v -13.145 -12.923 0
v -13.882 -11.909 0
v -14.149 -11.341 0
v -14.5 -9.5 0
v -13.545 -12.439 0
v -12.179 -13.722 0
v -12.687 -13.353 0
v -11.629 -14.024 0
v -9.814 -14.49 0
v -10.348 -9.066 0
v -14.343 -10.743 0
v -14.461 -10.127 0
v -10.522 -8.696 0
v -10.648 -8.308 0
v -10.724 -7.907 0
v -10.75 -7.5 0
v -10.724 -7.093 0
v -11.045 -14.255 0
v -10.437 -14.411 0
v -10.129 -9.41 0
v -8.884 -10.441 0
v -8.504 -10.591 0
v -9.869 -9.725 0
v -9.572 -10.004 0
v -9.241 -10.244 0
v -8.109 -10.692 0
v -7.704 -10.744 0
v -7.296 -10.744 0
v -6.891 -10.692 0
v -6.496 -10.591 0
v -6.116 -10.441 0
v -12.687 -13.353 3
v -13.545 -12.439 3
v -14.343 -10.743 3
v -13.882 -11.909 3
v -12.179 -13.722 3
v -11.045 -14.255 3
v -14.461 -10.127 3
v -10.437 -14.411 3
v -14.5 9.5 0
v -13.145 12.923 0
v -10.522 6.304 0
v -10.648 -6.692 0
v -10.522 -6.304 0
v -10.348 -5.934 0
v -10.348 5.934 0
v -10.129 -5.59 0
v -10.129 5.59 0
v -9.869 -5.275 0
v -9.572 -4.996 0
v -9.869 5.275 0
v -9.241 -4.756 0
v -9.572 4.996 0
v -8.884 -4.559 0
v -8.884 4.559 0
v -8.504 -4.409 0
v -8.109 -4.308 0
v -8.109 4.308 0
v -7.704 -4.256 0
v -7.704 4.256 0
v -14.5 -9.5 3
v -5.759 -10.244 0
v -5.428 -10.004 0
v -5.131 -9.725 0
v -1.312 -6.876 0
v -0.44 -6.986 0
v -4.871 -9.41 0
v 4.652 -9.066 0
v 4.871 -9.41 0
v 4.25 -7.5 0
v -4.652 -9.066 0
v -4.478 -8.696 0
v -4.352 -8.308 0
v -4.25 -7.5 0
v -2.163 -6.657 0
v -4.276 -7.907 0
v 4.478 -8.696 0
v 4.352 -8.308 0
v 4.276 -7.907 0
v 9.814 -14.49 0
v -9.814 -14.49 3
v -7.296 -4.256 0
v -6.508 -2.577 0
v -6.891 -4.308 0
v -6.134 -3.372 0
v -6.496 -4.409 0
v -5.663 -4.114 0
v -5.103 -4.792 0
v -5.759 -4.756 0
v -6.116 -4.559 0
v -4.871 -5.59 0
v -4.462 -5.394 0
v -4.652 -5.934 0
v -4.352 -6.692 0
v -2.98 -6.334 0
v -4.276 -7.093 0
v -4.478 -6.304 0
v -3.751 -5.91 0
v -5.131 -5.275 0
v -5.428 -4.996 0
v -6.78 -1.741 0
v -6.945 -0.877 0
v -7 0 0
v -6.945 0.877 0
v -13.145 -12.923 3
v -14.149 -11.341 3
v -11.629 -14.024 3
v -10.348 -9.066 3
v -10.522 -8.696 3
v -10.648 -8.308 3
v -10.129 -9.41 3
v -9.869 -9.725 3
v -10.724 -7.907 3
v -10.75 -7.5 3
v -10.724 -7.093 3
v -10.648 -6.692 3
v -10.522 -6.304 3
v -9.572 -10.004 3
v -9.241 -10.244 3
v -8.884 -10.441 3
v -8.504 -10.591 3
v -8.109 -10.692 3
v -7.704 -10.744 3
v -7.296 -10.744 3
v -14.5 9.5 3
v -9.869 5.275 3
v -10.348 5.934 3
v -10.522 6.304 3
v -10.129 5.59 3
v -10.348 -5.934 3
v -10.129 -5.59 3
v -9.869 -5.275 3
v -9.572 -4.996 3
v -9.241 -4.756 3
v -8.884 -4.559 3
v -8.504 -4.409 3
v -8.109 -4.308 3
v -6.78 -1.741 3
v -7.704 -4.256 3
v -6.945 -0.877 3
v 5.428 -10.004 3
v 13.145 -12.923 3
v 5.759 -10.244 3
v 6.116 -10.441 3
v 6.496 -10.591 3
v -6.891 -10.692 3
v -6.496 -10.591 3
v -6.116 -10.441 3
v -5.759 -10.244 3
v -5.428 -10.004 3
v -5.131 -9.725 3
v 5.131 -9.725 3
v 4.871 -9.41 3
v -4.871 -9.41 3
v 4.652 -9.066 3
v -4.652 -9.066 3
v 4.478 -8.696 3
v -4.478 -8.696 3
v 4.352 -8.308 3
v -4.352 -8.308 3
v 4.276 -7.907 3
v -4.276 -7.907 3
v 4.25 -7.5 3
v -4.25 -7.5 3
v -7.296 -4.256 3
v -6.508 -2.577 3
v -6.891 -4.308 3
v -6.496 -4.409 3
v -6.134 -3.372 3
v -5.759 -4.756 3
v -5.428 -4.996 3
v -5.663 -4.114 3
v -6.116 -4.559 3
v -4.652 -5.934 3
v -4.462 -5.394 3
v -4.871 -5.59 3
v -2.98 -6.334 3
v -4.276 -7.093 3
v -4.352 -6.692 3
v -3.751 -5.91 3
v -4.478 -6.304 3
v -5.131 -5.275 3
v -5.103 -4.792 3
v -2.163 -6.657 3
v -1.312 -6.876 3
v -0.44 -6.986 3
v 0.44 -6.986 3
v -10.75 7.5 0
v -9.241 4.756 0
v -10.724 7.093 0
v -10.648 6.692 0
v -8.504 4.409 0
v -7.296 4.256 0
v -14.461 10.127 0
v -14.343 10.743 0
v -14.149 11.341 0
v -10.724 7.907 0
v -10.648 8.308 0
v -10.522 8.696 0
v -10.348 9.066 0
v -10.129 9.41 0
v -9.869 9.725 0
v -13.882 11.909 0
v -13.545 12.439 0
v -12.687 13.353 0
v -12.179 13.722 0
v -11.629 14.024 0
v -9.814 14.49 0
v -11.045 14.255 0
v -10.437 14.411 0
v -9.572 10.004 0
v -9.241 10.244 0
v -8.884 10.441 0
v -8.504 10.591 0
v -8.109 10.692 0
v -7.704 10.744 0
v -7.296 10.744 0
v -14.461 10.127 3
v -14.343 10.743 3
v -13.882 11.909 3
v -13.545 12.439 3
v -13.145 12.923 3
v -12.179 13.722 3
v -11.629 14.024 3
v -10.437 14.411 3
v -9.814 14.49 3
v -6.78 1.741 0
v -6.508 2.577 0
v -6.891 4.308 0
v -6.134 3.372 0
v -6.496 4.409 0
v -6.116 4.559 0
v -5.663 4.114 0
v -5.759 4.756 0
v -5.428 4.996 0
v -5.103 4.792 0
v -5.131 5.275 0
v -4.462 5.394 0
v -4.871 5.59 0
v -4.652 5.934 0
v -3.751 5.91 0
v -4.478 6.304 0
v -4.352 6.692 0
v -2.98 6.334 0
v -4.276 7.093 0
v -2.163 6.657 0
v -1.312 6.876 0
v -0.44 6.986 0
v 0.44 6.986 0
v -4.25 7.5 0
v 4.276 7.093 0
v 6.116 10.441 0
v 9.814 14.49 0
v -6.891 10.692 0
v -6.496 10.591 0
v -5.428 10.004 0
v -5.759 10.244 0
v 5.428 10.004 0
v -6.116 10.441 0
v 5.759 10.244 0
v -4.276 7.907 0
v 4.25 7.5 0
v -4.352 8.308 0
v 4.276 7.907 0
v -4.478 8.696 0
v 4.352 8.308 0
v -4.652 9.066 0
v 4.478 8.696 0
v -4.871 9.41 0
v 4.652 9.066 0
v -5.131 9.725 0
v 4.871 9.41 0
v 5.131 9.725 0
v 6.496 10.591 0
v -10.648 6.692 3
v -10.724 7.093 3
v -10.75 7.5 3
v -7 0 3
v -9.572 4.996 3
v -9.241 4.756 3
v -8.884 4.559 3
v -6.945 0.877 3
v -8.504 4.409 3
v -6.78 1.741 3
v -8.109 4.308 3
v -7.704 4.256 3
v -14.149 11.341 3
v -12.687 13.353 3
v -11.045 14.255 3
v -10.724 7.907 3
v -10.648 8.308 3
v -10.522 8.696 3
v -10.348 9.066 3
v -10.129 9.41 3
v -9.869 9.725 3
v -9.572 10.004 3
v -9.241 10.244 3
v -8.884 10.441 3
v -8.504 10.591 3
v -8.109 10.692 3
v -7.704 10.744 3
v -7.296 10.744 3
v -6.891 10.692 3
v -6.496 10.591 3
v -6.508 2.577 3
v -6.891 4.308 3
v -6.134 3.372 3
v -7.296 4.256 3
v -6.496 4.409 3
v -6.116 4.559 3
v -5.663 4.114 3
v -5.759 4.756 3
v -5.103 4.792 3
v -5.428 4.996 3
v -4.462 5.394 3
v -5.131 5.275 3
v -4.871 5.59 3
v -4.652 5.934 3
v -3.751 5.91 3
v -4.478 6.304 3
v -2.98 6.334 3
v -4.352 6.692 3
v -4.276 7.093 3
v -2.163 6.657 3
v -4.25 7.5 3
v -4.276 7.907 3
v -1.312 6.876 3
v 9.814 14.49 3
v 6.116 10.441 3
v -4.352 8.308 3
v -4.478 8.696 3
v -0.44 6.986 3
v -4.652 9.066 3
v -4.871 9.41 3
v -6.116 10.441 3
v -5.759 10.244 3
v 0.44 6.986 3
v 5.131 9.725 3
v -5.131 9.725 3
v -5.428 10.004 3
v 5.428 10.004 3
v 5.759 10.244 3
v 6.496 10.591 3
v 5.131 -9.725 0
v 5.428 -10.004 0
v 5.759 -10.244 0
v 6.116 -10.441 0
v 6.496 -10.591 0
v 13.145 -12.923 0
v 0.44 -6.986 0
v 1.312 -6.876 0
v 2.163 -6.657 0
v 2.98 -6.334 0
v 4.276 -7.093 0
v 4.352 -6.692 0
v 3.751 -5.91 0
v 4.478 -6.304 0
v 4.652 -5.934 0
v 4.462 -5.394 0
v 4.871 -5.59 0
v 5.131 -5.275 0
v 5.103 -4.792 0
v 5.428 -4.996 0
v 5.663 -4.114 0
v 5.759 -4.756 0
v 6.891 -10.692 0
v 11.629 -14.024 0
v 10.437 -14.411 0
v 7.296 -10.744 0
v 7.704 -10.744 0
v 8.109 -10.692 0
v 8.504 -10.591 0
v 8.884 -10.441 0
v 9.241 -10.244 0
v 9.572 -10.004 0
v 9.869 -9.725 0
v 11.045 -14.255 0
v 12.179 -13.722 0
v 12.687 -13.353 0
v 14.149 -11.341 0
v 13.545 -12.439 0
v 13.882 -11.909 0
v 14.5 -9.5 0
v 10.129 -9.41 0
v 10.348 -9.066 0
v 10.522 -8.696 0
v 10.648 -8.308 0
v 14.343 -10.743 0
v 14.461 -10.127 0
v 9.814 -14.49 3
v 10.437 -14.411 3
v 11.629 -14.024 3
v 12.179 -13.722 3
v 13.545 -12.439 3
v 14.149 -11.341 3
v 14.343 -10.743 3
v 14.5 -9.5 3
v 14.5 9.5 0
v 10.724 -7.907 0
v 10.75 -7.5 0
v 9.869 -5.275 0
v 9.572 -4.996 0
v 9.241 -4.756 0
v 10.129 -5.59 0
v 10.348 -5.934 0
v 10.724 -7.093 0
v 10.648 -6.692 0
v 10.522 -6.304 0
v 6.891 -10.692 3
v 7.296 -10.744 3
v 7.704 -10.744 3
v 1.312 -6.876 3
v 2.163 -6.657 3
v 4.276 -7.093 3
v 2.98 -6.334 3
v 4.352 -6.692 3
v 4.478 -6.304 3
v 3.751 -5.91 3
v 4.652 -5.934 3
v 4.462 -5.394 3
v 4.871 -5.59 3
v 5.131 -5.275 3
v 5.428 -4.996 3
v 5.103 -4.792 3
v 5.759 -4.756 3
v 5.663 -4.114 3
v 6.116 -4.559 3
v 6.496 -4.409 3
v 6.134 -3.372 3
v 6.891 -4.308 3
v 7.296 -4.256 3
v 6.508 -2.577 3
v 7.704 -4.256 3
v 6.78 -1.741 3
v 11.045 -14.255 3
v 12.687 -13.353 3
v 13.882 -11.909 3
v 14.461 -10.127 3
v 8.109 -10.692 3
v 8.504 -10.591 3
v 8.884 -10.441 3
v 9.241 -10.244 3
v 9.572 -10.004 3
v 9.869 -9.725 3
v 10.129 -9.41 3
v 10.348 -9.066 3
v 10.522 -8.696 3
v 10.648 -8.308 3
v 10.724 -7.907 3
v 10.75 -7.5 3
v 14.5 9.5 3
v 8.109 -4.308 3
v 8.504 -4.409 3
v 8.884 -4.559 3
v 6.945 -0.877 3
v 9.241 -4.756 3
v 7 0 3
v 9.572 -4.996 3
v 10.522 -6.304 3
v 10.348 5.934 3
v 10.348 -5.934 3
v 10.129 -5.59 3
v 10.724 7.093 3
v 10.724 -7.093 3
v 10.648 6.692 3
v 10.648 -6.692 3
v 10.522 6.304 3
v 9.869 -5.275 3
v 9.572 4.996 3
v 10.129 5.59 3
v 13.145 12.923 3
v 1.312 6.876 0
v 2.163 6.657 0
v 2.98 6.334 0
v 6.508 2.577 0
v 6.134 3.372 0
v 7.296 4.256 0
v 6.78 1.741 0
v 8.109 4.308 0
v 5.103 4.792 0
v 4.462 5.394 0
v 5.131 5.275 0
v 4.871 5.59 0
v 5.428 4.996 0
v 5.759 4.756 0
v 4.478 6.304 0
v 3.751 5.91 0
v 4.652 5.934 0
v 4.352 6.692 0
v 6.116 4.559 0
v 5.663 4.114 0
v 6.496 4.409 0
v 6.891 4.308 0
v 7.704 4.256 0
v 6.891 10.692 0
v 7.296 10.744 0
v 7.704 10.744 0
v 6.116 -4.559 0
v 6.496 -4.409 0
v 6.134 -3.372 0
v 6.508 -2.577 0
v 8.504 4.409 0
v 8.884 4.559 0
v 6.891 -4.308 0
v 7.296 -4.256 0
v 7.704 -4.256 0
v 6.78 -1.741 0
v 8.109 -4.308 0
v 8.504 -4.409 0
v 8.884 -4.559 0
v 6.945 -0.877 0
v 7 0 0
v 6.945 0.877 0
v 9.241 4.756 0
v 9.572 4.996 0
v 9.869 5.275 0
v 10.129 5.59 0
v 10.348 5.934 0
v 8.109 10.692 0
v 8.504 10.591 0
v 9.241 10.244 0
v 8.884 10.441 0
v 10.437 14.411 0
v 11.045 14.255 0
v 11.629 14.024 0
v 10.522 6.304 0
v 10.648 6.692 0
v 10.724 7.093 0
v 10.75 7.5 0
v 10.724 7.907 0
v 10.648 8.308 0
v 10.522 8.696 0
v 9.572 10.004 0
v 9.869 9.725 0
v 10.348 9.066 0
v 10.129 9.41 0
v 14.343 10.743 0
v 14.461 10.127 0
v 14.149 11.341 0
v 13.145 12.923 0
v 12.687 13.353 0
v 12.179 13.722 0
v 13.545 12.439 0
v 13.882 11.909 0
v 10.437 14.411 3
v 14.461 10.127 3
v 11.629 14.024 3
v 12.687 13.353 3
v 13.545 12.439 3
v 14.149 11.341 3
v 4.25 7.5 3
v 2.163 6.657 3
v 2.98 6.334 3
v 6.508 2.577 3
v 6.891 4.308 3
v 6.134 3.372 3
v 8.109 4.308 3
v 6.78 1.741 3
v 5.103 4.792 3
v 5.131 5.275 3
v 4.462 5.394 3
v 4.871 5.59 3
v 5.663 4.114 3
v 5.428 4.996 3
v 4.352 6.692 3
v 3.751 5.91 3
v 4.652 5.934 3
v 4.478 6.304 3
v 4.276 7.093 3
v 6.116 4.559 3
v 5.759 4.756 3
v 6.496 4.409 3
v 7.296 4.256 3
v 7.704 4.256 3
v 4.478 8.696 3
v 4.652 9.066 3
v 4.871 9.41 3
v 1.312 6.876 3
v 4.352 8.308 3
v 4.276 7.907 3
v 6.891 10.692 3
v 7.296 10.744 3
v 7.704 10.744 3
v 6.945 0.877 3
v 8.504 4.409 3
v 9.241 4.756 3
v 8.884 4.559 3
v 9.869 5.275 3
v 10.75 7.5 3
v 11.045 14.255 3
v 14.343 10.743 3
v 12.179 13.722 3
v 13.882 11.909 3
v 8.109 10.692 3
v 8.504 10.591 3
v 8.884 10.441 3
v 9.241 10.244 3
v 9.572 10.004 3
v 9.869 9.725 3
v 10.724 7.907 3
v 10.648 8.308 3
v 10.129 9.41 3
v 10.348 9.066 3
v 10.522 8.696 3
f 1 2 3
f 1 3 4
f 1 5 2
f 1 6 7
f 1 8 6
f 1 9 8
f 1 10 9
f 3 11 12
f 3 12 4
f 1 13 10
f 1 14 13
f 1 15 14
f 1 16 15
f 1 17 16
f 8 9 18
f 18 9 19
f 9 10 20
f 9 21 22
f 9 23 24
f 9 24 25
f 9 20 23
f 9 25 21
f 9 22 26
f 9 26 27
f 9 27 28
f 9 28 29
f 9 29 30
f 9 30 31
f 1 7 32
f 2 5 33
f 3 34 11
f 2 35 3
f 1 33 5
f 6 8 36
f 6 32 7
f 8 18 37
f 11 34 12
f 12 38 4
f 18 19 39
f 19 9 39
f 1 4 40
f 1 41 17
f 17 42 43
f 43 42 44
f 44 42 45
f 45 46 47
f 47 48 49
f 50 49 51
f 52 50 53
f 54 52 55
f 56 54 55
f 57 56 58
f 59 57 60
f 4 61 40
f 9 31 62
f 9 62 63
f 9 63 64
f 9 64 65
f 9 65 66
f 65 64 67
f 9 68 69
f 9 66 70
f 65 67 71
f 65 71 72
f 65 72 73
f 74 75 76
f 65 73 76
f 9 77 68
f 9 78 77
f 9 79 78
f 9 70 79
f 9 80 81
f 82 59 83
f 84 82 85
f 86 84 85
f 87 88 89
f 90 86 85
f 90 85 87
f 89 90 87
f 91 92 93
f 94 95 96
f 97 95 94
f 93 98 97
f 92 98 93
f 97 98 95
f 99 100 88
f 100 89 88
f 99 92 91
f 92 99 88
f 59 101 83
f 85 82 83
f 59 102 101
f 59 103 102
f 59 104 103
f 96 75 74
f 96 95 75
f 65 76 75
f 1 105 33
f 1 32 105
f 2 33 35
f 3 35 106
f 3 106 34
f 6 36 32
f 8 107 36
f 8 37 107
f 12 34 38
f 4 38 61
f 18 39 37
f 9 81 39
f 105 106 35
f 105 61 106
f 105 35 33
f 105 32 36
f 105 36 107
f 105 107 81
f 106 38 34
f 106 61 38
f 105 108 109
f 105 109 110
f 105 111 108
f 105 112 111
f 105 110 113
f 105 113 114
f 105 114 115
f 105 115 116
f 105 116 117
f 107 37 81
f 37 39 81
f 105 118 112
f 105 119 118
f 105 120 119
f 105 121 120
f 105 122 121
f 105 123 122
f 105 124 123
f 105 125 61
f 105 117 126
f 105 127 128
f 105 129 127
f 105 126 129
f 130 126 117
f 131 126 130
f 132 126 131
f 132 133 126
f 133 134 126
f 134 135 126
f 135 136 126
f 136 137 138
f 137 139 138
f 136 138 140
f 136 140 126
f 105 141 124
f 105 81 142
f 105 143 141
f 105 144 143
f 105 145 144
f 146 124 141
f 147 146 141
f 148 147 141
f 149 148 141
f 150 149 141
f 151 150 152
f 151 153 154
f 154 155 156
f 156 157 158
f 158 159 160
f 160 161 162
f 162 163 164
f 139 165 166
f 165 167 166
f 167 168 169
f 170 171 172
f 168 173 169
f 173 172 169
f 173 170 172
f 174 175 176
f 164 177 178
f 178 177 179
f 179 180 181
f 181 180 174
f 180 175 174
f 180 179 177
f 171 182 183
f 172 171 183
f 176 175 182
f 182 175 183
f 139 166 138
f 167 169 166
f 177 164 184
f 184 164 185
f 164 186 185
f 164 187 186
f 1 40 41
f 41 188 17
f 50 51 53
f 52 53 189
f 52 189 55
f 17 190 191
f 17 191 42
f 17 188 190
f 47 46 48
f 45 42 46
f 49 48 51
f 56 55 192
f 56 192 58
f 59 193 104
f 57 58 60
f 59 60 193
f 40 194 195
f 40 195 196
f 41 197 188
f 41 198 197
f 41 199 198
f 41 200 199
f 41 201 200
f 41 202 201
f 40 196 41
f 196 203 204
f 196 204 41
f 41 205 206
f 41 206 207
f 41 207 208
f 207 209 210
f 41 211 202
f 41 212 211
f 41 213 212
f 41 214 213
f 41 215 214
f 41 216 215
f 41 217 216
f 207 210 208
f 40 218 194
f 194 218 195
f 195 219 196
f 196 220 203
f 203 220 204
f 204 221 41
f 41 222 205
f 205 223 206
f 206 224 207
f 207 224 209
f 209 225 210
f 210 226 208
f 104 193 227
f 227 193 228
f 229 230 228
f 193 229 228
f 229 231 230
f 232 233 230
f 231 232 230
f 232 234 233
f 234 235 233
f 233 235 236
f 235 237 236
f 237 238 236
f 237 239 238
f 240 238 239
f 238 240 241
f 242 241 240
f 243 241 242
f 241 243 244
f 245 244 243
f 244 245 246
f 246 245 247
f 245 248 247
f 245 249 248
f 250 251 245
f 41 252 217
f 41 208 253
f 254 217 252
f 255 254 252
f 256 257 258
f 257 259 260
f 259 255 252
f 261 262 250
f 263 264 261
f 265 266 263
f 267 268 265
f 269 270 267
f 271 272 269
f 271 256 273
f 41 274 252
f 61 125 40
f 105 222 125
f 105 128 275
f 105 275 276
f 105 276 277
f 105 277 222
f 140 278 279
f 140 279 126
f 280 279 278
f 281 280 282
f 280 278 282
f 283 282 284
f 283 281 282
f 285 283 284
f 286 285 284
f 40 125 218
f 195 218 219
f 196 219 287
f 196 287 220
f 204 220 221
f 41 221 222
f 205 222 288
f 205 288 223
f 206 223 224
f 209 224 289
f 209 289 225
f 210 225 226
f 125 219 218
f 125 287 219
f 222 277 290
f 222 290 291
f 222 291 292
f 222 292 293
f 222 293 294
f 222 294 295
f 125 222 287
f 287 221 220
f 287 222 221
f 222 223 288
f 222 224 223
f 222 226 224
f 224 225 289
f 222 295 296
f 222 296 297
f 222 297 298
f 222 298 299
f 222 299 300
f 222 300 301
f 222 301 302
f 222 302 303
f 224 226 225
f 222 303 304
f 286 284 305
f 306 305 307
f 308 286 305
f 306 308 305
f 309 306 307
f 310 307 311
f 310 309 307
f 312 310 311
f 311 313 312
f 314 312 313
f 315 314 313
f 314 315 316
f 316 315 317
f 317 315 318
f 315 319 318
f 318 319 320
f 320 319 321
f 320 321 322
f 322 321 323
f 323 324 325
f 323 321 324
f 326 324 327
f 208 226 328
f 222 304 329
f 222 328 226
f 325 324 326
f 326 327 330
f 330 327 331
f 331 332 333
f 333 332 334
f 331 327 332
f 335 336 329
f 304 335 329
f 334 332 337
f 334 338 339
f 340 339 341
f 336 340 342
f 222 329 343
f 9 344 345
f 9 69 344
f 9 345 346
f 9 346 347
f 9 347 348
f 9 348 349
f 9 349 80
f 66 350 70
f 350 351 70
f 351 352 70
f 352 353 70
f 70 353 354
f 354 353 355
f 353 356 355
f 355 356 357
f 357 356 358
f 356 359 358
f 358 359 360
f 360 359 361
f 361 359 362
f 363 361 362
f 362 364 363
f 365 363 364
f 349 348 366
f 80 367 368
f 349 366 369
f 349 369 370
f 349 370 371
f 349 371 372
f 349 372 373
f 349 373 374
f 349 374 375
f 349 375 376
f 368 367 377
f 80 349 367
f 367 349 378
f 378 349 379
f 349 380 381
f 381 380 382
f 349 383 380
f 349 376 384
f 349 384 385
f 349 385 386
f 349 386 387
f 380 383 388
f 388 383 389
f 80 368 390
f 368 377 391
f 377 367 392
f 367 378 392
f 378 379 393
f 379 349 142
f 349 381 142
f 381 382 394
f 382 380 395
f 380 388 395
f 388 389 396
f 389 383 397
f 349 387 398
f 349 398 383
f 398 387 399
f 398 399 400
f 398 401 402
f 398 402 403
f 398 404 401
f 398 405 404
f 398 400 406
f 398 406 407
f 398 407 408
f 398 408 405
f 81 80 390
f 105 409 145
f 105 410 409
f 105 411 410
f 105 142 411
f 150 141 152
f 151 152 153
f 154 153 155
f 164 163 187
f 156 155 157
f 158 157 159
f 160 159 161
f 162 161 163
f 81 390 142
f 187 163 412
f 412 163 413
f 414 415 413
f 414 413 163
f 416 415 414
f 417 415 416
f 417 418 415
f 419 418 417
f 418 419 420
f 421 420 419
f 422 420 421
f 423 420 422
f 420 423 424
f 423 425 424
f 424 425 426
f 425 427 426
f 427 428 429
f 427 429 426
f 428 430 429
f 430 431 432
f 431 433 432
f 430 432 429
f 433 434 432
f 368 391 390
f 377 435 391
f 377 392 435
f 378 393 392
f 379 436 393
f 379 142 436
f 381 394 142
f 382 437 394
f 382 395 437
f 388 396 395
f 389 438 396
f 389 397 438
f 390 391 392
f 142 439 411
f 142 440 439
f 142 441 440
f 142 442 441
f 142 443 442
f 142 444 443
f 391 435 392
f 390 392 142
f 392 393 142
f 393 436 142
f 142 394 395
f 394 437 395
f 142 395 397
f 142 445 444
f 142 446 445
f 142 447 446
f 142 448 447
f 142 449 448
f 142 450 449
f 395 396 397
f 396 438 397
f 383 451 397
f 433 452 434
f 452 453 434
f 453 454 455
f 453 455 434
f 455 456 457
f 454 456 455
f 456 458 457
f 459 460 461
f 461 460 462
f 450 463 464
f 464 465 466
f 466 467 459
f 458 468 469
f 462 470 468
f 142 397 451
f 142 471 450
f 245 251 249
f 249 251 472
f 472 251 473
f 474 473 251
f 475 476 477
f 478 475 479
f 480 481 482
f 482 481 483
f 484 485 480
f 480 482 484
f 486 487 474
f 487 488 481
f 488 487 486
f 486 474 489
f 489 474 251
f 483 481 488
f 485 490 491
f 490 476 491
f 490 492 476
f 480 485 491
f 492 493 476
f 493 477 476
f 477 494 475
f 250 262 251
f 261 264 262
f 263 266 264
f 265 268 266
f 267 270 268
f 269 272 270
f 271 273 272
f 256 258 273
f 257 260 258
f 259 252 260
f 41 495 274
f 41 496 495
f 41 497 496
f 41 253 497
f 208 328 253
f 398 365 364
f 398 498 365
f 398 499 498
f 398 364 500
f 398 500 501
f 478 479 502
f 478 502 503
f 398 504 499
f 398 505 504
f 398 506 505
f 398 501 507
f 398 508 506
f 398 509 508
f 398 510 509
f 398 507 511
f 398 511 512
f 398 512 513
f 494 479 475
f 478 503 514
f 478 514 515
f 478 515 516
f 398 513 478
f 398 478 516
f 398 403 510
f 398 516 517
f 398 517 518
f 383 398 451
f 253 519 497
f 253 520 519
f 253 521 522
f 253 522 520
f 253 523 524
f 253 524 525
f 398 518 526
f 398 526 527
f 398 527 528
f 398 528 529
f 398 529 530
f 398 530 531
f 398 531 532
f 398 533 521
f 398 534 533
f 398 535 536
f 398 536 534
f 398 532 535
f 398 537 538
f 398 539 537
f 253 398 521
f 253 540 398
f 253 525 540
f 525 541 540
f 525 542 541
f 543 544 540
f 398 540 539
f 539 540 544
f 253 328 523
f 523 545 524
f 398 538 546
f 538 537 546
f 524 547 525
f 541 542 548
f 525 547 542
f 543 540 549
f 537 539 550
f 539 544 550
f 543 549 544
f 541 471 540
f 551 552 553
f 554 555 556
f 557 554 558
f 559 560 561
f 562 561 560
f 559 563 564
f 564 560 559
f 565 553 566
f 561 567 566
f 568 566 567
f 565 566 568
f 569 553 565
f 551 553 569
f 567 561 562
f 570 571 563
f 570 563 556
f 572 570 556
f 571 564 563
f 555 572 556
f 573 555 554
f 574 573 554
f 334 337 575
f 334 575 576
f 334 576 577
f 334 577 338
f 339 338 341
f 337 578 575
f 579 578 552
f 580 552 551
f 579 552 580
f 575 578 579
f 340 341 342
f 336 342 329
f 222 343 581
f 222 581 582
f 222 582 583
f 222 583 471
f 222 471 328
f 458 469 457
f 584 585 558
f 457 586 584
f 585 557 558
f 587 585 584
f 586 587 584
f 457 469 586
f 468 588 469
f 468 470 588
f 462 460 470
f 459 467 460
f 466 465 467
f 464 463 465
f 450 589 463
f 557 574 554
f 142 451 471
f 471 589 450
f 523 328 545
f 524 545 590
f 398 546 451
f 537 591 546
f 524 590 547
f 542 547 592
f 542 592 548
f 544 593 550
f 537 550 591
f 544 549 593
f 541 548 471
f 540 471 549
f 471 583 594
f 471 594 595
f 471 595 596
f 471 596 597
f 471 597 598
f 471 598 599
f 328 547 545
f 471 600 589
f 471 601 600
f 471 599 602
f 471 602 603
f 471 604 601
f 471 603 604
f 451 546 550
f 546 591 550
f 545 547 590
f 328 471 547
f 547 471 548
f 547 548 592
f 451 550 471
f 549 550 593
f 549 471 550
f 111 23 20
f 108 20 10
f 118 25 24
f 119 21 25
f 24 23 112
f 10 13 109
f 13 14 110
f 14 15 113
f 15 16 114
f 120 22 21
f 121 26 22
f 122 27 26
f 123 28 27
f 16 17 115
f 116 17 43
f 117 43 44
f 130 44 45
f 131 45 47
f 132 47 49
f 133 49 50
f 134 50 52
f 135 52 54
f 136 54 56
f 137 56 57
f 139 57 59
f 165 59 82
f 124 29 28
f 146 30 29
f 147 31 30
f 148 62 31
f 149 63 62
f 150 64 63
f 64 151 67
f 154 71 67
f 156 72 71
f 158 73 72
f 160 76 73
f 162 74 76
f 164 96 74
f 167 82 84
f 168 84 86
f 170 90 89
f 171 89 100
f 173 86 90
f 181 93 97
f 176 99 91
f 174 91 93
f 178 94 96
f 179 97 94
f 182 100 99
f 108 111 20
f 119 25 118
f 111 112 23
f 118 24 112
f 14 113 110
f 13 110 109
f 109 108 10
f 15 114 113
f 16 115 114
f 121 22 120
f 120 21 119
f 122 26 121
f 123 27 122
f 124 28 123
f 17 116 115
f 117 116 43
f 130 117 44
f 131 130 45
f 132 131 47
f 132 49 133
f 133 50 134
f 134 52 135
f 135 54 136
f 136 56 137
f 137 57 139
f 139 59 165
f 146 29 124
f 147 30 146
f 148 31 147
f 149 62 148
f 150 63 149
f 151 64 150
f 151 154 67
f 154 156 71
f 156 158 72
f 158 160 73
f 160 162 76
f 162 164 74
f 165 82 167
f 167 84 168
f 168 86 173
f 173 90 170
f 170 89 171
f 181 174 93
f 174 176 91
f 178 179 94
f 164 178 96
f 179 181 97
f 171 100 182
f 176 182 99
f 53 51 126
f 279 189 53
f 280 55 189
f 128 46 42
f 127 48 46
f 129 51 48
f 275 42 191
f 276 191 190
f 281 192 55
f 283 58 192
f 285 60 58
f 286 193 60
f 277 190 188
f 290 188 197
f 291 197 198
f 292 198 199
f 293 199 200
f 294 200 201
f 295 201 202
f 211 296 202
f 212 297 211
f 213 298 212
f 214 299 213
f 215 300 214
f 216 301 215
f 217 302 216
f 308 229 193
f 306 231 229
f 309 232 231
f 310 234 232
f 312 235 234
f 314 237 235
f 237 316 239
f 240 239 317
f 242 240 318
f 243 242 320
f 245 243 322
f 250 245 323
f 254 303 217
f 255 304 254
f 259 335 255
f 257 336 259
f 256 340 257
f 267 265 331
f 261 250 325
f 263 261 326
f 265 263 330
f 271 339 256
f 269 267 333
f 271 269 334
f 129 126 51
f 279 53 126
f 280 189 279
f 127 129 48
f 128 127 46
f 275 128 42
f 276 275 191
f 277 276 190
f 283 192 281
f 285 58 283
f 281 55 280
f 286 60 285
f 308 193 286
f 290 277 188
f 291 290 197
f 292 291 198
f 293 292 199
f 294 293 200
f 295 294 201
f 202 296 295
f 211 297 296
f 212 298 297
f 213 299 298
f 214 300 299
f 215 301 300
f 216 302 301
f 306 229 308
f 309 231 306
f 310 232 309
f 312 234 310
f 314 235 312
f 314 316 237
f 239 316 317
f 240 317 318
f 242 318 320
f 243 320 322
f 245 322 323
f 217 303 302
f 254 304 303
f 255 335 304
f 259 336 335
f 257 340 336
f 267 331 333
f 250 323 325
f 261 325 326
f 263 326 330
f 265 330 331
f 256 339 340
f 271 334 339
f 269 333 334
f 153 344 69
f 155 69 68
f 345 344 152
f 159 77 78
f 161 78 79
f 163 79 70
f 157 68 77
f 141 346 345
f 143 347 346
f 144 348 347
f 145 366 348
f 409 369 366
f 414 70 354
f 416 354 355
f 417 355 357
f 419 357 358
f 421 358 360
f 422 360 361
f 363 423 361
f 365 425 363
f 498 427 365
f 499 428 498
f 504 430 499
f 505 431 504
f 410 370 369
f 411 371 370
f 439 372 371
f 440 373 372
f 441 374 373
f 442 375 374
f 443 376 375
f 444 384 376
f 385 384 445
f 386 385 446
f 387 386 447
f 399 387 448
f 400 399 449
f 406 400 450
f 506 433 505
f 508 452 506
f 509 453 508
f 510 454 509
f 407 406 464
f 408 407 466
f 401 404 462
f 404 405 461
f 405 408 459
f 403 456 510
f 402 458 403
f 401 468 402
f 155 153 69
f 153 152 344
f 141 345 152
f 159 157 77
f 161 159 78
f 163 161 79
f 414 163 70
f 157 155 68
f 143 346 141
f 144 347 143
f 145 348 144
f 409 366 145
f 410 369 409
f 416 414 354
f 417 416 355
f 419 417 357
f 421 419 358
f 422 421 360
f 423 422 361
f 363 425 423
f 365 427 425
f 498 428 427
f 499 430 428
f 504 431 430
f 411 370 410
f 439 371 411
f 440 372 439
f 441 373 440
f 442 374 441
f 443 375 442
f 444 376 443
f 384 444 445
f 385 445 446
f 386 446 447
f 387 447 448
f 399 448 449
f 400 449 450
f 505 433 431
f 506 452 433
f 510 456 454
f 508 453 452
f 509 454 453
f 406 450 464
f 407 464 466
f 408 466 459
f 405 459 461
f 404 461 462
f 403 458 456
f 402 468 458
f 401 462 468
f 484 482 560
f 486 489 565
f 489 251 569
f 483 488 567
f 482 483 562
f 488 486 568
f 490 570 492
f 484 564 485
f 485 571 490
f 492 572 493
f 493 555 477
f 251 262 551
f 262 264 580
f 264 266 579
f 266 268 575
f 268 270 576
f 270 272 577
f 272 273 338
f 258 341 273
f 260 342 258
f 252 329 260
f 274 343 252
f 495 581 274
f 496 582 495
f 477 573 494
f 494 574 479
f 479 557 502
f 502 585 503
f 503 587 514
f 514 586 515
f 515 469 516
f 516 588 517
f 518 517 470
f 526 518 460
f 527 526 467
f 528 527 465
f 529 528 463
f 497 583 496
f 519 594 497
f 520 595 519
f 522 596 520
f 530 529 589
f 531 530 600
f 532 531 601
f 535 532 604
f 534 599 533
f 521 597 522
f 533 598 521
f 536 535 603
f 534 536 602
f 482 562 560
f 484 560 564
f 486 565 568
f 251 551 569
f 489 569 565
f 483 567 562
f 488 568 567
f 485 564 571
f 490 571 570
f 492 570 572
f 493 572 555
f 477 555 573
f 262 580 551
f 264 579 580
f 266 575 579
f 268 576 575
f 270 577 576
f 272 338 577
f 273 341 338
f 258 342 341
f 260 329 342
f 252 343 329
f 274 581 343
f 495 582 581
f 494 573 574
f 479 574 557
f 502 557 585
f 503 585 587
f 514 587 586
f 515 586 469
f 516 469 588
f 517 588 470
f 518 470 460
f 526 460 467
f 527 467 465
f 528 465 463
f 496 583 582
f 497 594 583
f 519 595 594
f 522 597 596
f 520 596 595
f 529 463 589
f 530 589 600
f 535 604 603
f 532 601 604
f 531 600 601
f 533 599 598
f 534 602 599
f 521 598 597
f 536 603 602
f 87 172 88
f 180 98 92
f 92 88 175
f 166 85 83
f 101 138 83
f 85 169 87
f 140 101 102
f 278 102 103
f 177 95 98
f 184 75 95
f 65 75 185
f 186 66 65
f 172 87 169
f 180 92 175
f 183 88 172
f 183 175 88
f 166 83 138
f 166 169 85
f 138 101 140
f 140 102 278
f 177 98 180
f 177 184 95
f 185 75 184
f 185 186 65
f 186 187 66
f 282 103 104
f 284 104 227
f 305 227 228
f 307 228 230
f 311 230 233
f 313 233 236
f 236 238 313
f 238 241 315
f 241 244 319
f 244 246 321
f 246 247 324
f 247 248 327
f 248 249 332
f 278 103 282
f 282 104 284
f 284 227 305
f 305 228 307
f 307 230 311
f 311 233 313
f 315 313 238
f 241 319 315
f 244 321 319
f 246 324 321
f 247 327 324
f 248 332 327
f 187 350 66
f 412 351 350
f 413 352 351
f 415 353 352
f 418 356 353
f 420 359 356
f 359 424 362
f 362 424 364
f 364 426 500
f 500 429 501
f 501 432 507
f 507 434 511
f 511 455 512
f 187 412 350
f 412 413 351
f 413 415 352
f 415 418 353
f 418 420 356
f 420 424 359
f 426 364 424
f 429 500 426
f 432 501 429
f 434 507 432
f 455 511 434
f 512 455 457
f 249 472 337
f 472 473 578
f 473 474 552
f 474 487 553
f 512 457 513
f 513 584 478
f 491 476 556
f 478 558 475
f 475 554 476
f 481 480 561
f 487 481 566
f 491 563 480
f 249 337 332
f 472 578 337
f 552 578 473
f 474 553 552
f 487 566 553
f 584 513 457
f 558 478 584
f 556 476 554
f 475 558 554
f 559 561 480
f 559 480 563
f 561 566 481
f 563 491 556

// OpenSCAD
$fn = 50;

difference() {
	union() {
		hull() {
			translate(v = [-9.5, 9.5, 0]) {
				cylinder(h = 3, r = 5);
			}
			translate(v = [9.5, 9.5, 0]) {
				cylinder(h = 3, r = 5);
			}
			translate(v = [-9.5, -9.5, 0]) {
				cylinder(h = 3, r = 5);
			}
			translate(v = [9.5, -9.5, 0]) {
				cylinder(h = 3, r = 5);
			}
		}
	}
	union() {
		translate(v = [-7.5, -7.5, -100.0]) {
			cylinder(h = 200, r = 3.25);
		}
		translate(v = [-7.5, 7.5, -100.0]) {
			cylinder(h = 200, r = 3.25);
		}
		translate(v = [7.5, -7.5, -100.0]) {
			cylinder(h = 200, r = 3.25);
		}
		translate(v = [7.5, 7.5, -100.0]) {
			cylinder(h = 200, r = 3.25);
		}
		translate(v = [-7.5, -7.5, -100.0]) {
			cylinder(h = 200, r = 1.8);
		}
		translate(v = [-7.5, 7.5, -100.0]) {
			cylinder(h = 200, r = 1.8);
		}
		translate(v = [7.5, -7.5, -100.0]) {
			cylinder(h = 200, r = 1.8);
		}
		translate(v = [7.5, 7.5, -100.0]) {
			cylinder(h = 200, r = 1.8);
		}
		cylinder(h = 3, r = 7.0);
	}
}
